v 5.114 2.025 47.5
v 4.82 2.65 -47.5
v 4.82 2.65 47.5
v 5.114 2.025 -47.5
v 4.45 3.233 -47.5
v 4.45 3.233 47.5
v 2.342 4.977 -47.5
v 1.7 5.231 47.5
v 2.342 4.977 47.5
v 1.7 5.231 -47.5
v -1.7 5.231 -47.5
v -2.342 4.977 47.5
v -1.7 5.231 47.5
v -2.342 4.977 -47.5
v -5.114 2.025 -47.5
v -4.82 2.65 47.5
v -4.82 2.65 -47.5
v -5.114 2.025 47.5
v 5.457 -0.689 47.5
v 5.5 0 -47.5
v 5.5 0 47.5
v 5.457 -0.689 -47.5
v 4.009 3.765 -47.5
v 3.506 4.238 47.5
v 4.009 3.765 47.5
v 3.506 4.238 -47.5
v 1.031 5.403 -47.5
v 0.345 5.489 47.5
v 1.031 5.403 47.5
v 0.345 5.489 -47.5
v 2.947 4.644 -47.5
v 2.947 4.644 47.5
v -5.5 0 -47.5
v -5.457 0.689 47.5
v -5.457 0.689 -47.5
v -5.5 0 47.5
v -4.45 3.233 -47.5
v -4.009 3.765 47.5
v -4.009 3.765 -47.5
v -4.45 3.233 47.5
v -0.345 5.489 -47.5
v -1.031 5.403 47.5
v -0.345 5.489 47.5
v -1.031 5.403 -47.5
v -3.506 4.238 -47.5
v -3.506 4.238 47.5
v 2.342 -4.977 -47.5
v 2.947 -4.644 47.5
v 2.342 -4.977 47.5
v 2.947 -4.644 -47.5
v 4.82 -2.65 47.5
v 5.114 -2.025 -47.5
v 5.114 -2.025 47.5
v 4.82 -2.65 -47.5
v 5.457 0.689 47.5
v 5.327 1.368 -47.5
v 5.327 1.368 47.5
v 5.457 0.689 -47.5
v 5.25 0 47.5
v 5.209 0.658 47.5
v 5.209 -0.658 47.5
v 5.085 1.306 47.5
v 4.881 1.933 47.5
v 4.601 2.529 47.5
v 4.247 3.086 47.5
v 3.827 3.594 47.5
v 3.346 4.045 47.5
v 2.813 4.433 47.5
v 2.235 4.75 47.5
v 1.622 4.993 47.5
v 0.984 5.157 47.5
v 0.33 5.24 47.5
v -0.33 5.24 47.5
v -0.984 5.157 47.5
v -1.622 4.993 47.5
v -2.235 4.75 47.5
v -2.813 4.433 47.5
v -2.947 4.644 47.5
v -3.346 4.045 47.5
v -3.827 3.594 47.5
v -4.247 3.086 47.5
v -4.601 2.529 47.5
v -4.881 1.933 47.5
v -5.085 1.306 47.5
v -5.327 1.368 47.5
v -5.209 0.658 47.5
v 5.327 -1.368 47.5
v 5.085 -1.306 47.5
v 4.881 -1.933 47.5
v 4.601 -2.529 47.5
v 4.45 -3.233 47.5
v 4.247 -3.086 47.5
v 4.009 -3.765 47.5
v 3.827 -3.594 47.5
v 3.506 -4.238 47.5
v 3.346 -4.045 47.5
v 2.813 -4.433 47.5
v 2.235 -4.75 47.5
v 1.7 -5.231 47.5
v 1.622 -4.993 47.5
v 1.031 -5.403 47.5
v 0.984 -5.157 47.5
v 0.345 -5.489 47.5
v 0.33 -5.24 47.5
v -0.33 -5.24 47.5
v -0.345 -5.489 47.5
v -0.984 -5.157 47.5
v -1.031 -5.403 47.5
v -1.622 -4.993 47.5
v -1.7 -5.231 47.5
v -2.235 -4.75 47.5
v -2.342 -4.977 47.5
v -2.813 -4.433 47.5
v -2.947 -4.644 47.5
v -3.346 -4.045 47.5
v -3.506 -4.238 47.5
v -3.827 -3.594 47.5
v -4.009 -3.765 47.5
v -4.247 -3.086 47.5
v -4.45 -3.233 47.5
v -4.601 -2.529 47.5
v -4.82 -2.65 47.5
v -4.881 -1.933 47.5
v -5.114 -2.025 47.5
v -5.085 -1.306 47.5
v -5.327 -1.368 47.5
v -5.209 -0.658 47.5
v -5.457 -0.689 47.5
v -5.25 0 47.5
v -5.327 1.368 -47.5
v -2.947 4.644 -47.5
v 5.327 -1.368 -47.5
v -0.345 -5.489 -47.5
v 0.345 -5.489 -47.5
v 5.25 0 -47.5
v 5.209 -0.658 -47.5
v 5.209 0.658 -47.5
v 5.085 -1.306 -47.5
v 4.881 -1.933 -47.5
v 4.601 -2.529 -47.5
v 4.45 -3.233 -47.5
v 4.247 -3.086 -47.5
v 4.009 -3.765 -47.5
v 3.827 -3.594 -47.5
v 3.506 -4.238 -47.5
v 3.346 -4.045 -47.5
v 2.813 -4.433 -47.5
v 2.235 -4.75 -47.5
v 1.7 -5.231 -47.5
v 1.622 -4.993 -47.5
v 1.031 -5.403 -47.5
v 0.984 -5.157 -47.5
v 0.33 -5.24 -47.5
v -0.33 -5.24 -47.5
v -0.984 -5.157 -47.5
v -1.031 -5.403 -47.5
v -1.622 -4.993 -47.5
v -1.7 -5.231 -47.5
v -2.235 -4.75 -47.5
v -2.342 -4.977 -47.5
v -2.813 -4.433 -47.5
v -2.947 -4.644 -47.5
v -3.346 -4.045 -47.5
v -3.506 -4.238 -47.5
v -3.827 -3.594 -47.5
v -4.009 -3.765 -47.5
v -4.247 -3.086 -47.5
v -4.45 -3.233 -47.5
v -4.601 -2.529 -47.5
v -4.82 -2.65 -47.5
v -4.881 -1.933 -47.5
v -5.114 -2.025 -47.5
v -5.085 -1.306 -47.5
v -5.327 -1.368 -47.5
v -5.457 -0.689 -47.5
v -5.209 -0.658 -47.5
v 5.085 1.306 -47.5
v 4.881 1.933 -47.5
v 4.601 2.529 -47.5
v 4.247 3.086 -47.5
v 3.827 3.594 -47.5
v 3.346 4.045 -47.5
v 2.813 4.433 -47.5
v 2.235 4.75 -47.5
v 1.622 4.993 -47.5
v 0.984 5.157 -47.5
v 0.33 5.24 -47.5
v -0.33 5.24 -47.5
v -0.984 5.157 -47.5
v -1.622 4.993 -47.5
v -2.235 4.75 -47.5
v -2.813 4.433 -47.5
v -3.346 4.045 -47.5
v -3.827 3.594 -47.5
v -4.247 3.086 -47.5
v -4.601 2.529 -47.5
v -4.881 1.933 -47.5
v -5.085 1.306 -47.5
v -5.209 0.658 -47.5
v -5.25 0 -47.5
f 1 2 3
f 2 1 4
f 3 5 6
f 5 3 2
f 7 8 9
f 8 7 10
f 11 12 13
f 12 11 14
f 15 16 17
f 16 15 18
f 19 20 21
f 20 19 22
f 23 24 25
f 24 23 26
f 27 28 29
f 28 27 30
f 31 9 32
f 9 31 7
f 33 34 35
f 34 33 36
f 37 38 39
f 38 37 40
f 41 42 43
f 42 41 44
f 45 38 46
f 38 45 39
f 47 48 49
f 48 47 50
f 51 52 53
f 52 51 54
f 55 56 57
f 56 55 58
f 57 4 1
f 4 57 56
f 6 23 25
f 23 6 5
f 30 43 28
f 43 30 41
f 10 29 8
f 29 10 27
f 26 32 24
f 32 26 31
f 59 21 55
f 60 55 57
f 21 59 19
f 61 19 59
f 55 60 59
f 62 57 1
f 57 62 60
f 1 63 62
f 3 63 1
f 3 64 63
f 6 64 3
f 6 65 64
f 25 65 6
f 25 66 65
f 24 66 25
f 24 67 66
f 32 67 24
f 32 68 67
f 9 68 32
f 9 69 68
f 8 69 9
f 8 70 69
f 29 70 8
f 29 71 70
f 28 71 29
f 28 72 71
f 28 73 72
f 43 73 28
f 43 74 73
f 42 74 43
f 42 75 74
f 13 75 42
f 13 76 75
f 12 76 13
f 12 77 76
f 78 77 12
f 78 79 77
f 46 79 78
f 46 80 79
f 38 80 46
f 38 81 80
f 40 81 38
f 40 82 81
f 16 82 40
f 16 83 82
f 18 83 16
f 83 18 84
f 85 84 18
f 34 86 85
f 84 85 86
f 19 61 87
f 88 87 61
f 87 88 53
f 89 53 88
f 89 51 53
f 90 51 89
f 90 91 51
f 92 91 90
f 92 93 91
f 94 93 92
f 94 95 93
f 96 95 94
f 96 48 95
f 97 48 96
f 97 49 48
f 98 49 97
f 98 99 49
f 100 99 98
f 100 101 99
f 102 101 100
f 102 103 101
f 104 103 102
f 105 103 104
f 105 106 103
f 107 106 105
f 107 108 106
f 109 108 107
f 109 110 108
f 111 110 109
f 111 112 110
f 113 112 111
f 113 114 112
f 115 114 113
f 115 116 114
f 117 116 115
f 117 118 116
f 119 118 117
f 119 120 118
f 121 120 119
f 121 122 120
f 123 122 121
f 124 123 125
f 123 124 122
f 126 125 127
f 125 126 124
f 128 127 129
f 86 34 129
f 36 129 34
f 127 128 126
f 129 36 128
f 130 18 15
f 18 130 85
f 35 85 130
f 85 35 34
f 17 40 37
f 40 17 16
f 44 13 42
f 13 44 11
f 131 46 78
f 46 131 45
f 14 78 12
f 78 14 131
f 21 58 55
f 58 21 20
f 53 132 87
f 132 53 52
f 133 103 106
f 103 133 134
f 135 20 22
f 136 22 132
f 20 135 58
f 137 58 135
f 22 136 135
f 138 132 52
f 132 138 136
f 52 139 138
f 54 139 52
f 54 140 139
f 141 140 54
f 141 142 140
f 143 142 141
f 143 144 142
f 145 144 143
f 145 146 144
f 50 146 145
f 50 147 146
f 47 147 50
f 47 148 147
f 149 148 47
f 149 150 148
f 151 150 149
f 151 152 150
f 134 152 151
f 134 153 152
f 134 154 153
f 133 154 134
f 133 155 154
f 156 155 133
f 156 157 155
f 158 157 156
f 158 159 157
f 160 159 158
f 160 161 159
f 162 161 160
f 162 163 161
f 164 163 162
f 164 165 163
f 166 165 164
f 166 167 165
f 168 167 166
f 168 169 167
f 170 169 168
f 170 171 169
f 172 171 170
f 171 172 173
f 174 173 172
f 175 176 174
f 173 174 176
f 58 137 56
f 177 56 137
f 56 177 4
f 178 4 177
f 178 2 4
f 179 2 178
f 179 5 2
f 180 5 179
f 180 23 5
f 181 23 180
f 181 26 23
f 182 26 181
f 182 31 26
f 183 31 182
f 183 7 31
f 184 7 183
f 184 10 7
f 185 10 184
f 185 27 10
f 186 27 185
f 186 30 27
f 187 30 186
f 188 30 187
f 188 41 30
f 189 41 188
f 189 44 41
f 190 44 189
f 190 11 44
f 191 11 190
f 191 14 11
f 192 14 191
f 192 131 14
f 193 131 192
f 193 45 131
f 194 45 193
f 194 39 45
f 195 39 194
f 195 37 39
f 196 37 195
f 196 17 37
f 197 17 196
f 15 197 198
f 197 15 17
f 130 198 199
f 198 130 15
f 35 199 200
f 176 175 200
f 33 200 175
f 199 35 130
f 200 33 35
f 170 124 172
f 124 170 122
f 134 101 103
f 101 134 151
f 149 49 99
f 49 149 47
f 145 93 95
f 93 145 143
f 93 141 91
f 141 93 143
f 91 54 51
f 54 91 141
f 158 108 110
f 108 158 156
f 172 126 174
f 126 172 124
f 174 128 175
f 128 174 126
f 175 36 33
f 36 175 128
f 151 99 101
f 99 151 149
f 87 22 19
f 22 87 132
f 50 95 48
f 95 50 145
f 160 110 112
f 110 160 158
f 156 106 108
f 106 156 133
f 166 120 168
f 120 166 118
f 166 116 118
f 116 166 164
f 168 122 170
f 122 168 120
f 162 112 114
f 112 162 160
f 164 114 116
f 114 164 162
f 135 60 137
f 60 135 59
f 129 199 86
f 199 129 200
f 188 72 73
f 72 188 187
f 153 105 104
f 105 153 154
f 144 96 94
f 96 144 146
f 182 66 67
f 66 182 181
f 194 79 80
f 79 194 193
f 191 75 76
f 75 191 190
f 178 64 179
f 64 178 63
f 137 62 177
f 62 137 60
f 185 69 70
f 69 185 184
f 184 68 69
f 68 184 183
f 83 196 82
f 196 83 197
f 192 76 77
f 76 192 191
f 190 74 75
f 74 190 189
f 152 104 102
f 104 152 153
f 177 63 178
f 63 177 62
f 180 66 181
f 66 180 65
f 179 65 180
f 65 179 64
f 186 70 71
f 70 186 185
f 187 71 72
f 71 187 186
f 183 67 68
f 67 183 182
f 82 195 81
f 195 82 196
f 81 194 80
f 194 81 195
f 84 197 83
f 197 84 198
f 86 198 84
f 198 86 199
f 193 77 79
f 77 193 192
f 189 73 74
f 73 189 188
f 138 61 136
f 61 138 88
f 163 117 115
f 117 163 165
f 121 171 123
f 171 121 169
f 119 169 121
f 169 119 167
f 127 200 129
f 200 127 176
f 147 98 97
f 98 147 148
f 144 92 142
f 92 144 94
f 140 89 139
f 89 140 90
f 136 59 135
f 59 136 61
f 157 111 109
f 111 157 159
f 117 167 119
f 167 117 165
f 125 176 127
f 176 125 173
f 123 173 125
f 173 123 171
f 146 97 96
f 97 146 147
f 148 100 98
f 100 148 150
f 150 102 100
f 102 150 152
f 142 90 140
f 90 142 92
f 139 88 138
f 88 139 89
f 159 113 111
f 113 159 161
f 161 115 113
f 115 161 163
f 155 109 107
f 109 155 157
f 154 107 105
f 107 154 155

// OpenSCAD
$fn = 50;


difference() {
	union() {
		translate(v = [0, 0, -47.5000000000]) {
			cylinder(h = 95, r = 5.5000000000);
		}
	}
	union() {
		translate(v = [0, 0, -100.0000000000]) {
			cylinder(h = 200, r = 5.2500000000);
		}
	}
}
